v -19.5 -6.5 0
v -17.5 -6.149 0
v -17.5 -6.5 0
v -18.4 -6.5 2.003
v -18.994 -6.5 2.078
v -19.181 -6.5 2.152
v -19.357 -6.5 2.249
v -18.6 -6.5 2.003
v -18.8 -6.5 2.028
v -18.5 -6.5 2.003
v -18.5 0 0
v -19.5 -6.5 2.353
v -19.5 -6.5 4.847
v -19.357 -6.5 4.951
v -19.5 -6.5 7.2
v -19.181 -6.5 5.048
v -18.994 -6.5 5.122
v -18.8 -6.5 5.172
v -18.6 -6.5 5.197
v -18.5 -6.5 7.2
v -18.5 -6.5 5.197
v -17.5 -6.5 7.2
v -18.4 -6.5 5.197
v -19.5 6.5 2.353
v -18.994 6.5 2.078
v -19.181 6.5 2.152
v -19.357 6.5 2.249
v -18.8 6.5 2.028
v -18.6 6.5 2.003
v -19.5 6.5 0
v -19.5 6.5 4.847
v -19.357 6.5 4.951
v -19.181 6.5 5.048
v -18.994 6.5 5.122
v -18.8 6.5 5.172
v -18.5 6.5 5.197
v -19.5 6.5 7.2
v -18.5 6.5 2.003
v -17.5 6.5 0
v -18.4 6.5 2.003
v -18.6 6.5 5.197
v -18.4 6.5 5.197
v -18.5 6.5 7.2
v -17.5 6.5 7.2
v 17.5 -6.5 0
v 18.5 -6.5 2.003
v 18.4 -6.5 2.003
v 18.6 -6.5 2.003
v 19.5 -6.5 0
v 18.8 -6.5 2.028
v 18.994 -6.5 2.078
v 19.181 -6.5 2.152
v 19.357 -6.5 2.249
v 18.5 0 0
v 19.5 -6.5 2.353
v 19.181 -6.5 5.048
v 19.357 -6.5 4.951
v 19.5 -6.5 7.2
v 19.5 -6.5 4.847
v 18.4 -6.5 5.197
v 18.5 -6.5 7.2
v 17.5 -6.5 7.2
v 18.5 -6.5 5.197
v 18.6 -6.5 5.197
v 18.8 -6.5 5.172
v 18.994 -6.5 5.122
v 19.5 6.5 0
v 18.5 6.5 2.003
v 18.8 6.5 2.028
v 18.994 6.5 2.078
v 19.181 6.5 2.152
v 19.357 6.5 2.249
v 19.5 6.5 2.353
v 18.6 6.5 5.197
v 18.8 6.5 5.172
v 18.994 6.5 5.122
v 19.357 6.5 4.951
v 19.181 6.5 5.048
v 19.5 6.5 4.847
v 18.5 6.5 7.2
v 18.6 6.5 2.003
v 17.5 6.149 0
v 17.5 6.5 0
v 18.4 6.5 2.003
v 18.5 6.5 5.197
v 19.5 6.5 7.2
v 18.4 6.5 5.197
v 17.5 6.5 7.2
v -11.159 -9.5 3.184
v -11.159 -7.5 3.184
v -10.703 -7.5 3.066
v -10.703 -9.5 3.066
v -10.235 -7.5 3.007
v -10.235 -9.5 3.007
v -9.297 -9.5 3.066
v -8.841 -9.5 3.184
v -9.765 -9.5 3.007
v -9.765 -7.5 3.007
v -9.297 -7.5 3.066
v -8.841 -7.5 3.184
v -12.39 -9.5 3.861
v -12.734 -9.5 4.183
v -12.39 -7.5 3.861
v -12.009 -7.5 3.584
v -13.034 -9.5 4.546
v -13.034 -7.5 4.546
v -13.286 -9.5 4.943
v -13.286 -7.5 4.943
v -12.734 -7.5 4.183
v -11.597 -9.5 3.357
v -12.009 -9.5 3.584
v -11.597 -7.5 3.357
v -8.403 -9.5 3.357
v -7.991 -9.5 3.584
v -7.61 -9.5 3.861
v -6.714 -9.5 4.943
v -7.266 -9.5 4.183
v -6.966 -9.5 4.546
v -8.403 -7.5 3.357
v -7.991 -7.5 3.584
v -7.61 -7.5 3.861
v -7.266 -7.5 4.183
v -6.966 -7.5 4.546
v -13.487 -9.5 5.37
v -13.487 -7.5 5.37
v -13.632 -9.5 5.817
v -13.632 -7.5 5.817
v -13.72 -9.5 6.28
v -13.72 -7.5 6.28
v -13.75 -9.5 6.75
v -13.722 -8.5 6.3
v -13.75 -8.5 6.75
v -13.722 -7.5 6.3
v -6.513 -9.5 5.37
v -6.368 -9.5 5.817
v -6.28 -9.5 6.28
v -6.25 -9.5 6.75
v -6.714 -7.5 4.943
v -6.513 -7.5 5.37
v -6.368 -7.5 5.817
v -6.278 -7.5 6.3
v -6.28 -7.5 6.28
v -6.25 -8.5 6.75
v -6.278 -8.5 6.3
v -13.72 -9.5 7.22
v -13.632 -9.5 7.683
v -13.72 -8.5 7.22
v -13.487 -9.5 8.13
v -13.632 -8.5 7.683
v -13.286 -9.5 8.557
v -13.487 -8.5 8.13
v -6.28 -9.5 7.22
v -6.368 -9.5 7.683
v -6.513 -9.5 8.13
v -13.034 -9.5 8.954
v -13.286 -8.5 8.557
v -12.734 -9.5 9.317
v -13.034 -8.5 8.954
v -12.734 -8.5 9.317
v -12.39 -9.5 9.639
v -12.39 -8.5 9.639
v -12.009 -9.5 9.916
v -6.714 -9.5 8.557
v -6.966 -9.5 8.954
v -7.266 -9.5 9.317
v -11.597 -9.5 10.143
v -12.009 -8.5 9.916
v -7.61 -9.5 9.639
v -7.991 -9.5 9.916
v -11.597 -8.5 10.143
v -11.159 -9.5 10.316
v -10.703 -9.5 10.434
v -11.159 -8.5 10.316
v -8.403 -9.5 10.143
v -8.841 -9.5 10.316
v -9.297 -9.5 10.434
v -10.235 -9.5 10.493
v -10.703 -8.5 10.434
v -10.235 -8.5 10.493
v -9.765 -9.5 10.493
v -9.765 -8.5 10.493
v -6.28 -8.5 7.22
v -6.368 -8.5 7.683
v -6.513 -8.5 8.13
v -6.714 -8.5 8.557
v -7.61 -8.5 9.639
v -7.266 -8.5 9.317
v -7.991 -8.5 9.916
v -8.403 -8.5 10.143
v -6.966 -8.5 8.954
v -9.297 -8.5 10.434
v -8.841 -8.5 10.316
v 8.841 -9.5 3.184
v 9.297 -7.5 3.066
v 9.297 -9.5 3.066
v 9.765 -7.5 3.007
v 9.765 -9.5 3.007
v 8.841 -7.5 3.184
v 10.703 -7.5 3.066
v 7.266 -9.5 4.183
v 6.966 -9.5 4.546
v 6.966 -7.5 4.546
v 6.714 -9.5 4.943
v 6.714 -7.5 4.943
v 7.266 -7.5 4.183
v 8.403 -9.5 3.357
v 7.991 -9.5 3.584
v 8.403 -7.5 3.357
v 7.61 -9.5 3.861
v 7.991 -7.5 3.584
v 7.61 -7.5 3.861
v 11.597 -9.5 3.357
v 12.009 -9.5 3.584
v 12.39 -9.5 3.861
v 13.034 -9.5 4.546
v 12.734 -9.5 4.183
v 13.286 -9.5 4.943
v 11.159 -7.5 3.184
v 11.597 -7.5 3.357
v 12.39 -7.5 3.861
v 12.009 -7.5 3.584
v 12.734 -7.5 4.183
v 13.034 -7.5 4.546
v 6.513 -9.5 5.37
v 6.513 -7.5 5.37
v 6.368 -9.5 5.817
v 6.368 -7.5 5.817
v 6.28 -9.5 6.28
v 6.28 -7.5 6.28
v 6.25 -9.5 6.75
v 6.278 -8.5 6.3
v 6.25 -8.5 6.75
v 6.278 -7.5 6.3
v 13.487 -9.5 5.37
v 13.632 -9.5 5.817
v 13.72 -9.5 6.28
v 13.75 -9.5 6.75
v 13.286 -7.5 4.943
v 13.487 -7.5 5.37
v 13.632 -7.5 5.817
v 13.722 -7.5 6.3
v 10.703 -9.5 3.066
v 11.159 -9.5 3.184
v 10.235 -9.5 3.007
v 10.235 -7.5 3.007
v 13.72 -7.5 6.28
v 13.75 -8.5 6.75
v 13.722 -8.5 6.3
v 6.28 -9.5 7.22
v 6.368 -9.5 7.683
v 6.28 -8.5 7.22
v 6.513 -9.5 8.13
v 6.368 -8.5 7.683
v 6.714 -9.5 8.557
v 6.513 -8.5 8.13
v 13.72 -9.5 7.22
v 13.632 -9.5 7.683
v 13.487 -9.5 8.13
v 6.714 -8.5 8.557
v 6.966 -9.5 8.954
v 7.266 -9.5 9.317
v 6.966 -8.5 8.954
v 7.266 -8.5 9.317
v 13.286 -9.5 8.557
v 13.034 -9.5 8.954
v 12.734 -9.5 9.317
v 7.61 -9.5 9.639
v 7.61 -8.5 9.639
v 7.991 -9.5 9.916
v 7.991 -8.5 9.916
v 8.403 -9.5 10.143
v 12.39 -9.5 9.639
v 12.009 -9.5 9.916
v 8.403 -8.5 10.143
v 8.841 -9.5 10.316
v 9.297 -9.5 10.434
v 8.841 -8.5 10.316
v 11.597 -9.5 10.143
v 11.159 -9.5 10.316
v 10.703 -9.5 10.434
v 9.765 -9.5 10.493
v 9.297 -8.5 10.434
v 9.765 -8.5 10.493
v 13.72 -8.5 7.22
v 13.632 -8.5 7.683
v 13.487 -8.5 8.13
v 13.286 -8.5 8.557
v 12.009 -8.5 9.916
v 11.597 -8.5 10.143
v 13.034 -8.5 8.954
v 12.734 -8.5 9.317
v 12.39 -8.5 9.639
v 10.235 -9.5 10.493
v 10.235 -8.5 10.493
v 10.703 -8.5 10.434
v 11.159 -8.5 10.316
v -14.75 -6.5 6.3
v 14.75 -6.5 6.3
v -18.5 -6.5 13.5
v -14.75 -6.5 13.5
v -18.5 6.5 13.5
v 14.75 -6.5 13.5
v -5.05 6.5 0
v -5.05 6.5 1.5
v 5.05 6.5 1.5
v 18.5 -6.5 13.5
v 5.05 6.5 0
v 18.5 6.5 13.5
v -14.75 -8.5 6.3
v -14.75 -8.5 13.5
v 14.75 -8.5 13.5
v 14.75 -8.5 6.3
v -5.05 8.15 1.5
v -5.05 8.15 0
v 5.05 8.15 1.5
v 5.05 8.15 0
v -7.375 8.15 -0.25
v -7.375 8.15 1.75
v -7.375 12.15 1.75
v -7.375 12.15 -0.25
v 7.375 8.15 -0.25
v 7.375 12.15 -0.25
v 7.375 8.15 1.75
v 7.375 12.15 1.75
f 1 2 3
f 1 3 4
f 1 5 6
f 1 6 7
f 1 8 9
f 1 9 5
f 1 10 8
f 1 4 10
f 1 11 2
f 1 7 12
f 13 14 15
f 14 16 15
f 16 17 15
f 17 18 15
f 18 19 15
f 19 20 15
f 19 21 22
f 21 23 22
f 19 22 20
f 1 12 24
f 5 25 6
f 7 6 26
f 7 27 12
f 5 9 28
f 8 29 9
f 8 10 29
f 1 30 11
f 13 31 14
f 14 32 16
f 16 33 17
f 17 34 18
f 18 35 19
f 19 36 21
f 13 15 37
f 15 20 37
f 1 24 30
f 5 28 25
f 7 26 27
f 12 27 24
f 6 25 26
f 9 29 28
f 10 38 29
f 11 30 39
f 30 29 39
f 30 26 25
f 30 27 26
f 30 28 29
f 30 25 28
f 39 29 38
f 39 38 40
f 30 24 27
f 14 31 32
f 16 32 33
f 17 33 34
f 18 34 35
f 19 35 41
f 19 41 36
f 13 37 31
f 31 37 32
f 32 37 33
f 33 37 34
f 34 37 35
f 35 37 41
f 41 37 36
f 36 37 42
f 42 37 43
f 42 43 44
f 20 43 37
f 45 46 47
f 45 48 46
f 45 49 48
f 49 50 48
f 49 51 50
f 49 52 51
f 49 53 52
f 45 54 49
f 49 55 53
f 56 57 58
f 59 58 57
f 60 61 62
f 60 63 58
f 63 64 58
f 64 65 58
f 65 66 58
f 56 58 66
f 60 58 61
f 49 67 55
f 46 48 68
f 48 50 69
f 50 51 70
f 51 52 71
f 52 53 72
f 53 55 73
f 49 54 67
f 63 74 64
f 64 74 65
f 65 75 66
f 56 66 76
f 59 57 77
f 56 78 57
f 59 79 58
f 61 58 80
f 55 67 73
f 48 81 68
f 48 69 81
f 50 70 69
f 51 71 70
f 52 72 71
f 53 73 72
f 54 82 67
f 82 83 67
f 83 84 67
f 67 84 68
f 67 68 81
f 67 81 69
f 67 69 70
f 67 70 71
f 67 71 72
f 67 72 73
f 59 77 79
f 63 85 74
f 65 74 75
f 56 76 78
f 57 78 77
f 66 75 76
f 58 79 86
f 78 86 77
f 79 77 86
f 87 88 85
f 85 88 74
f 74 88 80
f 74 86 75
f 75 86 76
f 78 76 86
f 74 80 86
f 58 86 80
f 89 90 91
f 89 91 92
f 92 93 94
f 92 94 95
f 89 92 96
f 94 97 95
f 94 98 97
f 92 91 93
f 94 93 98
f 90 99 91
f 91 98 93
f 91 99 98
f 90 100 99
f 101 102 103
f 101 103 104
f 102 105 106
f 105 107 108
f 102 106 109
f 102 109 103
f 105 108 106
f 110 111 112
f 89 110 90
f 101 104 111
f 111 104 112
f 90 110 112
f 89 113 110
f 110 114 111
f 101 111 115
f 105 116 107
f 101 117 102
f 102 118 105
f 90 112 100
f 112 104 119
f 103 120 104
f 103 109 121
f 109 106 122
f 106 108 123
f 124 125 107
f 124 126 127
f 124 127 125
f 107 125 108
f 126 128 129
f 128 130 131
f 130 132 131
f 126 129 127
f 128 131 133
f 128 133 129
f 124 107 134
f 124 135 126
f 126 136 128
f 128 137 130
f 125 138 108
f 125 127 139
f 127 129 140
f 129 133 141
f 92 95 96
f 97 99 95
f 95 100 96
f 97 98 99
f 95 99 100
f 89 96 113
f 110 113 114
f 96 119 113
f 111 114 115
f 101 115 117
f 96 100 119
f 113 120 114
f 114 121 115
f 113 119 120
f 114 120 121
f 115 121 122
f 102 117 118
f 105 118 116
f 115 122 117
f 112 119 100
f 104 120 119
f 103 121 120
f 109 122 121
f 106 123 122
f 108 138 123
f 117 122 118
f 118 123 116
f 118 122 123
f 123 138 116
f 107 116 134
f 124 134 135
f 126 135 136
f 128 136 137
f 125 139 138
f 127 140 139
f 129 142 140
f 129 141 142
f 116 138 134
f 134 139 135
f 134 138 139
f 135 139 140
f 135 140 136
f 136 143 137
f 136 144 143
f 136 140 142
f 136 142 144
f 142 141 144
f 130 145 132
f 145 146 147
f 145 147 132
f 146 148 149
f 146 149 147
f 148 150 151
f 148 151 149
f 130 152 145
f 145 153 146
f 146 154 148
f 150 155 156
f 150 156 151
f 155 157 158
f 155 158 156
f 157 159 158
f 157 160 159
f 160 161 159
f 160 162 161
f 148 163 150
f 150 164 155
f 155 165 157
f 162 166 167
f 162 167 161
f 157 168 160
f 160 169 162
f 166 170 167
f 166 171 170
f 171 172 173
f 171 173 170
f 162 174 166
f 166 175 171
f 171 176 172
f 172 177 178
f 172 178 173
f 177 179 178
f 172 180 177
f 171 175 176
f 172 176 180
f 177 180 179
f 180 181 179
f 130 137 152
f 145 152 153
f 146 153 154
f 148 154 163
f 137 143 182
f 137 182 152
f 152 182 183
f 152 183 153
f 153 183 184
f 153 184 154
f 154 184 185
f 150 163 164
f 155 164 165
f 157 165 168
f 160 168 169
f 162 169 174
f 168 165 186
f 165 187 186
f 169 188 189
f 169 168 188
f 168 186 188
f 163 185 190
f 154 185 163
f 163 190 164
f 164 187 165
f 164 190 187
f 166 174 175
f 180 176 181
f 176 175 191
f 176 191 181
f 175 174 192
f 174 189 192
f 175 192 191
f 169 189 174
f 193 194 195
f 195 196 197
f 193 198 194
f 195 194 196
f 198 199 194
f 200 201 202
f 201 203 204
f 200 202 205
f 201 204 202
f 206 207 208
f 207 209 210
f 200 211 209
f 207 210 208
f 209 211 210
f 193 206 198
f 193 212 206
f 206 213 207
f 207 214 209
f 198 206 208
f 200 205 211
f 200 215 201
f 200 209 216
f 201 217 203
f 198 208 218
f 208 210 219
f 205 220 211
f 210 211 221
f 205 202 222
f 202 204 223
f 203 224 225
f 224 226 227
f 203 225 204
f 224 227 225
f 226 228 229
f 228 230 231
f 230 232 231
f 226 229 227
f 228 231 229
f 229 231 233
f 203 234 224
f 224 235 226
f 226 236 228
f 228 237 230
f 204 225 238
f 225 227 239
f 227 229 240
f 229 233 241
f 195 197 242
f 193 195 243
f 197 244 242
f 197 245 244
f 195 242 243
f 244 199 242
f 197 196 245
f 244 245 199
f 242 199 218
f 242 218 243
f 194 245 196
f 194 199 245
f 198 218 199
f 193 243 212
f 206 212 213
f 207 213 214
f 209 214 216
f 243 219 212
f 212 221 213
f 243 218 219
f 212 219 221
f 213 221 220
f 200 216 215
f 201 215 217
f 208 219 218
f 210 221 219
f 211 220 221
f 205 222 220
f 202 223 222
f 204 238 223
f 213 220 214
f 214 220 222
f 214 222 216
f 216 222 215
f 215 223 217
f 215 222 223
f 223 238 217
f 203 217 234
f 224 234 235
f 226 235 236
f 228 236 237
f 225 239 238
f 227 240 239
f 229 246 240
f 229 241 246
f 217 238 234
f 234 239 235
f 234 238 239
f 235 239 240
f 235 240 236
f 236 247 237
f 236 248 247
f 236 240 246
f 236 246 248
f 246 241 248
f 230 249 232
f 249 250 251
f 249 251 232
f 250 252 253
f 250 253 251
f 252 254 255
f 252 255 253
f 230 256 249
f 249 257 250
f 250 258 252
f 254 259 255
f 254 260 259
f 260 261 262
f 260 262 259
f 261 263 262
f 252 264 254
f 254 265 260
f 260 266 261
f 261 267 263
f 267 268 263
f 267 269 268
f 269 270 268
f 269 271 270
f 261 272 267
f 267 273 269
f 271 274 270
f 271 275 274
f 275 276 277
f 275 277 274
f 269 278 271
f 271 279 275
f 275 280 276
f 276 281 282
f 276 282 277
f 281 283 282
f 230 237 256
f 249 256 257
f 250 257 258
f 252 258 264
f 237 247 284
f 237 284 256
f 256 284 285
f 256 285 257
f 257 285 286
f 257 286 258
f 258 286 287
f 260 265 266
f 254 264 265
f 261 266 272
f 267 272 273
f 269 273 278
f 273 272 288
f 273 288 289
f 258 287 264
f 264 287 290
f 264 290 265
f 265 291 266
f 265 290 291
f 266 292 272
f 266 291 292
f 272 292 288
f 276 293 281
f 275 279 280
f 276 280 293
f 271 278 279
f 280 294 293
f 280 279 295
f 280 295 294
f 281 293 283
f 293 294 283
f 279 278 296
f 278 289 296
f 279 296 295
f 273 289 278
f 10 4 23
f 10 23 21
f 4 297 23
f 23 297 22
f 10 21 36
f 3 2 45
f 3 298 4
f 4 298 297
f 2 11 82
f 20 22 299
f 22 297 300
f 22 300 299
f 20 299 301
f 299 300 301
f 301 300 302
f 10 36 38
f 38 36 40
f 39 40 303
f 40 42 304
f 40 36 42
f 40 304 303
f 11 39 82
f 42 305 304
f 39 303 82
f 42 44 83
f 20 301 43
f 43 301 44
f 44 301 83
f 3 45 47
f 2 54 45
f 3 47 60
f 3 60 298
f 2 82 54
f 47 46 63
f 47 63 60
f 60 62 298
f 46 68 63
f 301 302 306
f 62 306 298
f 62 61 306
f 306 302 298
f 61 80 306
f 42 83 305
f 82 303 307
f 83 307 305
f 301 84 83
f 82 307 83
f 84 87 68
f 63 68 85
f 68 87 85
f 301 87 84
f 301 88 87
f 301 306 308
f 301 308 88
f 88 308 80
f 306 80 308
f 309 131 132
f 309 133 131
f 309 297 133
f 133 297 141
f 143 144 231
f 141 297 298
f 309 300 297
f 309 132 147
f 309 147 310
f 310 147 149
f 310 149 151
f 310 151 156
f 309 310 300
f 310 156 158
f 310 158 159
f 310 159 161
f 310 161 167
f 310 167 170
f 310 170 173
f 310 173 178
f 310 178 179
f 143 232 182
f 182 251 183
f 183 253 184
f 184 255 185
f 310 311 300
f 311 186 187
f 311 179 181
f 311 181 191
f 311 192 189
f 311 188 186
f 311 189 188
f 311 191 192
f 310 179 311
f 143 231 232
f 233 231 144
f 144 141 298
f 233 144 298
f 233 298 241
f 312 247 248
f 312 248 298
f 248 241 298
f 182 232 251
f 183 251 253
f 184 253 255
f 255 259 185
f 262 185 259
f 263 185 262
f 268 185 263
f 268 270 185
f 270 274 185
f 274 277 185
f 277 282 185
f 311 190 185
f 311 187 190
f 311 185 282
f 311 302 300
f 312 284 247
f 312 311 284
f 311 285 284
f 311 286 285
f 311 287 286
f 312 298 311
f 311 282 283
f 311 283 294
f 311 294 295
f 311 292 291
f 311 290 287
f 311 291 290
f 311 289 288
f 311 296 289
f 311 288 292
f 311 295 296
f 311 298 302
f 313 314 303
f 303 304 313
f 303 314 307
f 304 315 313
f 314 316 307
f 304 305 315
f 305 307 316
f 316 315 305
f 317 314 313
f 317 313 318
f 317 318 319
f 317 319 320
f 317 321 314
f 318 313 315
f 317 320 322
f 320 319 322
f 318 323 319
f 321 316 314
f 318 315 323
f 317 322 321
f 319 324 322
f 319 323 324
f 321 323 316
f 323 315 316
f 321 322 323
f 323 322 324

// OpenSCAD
// Sharp GP2Y0A21YK0F 測距センサ モデル
// 単位: mm, 原点: 本体中心

$fn = 50;

module gp2y0a21yk0f() {
    // メインボディ (幅37 x 奥行13 x 高さ13.5)
    color("DimGray")
    translate([0, 0, 13.5/2])
    cube([37, 13, 13.5], center = true);

    // 取付タブ (両端)
    color("DimGray")
    difference() {
        union() {
            translate([-18.5, 0, 7.2/2])
            cube([2, 13, 7.2], center = true);
            translate([18.5, 0, 7.2/2])
            cube([2, 13, 7.2], center = true);
        }
        // 取付穴
        rotate([90, 0, 0])
        translate([-18.5, 7.2/2, 0]) cylinder(d = 3.2, h = 20, center = true);
        rotate([90, 0, 0])
        translate([18.5, 7.2/2, 0]) cylinder(d = 3.2, h = 20, center = true);
    }

    // レンズケース部分 (凸部)
    color("Black")
    translate([0, -13/2 - 2/2, 13.5 - 7.2/2])
    cube([29.5, 2, 7.2], center = true);

    // レンズ部
    color("DimGray") {
        translate([-10, -7.5, 6.75]) rotate([90, 0, 0]) cylinder(r = 3.75, h = 2);
        translate([10, -7.5, 6.75]) rotate([90, 0, 0]) cylinder(r = 3.75, h = 2);
    }

    // コネクタ部
    color("WhiteSmoke")
    translate([0, 6.5 + 3.3/2, 1.5/2])
    cube([10.1, 3.3, 1.5], center = true);
    
    color("DimGray")
    translate([0, 6.5 + 3.3/2 + 2, 1.5/2])
    cube([14.75, 4, 2], center = true);
}

gp2y0a21yk0f();
